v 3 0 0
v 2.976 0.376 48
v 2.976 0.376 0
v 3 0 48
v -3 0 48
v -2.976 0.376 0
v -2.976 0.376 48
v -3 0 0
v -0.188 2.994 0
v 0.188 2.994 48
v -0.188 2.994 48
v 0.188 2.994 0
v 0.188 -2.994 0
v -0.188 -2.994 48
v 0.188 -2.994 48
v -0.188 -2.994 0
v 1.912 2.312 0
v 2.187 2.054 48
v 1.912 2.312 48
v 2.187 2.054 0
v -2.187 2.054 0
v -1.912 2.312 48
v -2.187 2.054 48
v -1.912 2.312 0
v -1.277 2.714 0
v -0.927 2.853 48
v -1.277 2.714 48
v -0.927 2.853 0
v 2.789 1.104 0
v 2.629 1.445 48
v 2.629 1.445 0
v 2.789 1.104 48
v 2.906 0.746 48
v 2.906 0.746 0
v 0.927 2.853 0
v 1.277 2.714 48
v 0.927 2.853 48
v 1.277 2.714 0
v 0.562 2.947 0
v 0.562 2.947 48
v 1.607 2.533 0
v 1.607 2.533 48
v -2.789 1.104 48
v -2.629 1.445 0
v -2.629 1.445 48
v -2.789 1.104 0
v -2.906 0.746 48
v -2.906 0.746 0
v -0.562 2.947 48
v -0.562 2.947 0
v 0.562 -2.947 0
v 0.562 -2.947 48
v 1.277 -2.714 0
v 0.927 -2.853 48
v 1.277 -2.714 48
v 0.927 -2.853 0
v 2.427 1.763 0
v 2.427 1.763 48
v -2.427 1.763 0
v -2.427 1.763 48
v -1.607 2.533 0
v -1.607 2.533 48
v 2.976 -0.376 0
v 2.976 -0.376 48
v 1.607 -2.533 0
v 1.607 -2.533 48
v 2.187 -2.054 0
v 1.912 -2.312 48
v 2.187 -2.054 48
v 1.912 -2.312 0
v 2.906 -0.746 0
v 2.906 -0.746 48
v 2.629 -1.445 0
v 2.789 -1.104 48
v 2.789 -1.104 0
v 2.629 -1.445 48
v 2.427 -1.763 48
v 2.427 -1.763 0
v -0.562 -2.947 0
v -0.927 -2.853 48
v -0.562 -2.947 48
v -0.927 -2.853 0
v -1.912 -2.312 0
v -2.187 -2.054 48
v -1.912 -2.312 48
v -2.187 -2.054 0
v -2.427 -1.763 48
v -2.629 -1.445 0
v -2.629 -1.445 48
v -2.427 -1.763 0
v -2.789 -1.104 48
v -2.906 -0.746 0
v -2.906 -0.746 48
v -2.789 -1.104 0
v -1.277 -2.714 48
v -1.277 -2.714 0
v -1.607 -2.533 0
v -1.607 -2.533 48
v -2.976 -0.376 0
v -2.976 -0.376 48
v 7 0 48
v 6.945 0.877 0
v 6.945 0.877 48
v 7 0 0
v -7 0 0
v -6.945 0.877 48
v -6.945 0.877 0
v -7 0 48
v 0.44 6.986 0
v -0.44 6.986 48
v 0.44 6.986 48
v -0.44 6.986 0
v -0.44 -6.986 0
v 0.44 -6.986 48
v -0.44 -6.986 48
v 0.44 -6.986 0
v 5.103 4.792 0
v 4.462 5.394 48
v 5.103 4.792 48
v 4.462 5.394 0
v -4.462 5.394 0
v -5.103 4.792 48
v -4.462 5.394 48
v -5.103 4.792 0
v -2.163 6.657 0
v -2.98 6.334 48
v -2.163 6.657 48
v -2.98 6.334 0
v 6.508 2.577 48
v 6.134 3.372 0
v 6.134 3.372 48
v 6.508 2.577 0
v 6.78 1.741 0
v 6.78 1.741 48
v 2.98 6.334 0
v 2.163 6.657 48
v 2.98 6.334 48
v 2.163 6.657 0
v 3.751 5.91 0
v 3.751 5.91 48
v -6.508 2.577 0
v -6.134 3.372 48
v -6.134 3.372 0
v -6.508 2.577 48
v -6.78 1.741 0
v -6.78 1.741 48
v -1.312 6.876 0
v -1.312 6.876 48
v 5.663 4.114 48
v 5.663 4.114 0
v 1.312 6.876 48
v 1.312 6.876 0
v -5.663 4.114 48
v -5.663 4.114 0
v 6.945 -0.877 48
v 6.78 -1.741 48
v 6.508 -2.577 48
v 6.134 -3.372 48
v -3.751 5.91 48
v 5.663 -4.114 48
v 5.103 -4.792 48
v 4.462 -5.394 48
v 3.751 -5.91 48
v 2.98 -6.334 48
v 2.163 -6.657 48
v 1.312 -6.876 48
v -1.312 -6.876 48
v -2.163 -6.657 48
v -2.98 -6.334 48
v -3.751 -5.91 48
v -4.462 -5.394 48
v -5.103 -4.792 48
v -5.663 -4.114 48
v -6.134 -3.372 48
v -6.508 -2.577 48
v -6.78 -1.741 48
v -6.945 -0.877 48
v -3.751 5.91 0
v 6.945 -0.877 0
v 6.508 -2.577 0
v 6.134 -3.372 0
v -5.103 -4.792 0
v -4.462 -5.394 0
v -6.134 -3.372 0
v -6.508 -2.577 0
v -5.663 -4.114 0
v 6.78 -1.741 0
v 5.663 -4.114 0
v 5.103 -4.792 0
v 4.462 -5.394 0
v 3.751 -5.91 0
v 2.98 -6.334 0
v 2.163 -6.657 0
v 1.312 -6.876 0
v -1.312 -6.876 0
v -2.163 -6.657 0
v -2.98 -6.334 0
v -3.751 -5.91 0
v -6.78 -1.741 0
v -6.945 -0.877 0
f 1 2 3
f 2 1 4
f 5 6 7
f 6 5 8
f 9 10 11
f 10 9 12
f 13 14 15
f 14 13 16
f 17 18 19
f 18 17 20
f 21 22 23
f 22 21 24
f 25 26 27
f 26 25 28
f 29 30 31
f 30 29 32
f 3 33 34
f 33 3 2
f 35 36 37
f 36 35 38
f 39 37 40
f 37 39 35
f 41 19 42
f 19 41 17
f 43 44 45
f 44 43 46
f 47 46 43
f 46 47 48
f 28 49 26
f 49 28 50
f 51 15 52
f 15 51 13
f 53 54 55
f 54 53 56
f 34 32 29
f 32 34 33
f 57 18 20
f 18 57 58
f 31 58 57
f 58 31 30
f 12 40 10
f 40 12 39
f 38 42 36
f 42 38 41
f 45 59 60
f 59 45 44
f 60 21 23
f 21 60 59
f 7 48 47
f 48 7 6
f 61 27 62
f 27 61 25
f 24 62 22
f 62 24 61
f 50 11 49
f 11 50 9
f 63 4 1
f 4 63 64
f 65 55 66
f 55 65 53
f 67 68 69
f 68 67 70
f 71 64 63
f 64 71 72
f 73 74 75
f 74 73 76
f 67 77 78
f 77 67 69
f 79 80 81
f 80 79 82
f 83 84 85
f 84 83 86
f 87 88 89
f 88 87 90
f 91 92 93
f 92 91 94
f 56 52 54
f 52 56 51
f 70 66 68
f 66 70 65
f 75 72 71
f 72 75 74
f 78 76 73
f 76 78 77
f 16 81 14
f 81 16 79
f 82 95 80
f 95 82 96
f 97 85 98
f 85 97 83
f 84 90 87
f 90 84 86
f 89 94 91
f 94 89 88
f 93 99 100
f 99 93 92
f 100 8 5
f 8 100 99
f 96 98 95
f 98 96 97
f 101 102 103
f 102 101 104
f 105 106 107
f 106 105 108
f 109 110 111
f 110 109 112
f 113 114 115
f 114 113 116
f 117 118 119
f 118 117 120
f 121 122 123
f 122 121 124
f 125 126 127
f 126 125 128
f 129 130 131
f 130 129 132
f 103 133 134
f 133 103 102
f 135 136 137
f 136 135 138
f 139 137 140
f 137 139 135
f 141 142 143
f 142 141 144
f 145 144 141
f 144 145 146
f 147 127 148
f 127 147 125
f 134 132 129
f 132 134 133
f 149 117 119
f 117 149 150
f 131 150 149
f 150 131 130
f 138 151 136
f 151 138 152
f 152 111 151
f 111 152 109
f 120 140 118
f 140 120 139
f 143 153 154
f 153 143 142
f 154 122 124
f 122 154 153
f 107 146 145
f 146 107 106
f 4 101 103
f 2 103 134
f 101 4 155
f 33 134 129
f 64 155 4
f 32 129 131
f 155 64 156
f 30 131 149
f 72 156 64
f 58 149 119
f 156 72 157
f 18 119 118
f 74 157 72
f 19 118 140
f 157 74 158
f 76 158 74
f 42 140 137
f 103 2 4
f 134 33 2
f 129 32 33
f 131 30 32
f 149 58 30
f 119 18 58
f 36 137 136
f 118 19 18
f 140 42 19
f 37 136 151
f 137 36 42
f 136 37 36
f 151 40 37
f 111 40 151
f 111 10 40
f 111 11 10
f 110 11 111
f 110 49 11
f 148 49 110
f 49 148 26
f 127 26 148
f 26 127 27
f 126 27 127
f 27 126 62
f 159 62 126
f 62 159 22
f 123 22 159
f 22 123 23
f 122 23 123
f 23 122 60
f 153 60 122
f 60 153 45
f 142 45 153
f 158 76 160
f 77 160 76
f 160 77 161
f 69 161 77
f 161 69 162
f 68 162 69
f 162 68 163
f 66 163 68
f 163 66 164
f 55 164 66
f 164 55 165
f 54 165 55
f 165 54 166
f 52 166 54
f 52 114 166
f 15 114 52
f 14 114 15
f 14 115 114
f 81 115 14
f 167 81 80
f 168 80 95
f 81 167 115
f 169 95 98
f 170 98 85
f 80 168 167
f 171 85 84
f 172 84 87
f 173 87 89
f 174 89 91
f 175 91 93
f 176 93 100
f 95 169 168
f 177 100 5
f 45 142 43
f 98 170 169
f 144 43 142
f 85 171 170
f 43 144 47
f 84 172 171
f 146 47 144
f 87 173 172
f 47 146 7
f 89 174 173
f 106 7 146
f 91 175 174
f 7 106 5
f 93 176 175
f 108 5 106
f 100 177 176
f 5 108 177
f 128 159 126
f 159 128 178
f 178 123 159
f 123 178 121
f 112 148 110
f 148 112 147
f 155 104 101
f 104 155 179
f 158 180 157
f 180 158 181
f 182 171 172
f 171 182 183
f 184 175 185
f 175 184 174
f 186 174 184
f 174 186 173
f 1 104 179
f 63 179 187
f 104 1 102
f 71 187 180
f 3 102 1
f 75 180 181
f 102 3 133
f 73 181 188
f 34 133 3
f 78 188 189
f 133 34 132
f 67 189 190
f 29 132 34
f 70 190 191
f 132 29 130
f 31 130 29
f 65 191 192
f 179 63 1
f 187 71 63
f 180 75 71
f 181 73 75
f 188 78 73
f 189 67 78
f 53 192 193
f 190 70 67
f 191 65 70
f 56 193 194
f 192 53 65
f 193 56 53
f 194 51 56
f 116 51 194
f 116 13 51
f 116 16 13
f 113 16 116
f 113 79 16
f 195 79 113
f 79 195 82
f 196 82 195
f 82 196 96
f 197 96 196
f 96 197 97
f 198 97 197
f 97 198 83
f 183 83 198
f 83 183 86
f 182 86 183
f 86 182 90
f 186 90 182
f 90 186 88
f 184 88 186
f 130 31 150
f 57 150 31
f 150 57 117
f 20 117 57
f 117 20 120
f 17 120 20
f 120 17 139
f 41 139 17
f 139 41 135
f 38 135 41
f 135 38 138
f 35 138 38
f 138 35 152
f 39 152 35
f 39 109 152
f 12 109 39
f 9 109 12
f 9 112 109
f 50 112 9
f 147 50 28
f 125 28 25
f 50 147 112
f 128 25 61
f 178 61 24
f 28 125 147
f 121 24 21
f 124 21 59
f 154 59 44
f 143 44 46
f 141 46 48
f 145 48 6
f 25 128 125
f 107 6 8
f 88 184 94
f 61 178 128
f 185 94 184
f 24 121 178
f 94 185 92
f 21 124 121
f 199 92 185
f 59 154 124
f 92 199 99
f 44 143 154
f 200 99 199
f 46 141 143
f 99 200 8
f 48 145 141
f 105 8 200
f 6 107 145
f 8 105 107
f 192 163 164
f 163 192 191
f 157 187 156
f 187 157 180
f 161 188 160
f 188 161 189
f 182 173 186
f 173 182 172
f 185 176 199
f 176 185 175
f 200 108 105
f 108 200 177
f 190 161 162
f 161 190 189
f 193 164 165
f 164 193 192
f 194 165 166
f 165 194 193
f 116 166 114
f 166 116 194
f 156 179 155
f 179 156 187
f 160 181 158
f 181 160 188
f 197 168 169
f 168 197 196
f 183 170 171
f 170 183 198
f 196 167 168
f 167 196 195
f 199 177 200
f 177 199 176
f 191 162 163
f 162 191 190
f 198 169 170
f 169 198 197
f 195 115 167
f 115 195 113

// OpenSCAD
$fn = 50;


difference() {
	union() {
		cylinder(h = 48, r = 7.0000000000);
	}
	union() {
		cylinder(h = 48, r = 3.0000000000);
		cylinder(h = 48, r = 1.5000000000);
		cylinder(h = 48, r = 1.5000000000);
		cylinder(h = 48, r = 1.5000000000);
	}
}
